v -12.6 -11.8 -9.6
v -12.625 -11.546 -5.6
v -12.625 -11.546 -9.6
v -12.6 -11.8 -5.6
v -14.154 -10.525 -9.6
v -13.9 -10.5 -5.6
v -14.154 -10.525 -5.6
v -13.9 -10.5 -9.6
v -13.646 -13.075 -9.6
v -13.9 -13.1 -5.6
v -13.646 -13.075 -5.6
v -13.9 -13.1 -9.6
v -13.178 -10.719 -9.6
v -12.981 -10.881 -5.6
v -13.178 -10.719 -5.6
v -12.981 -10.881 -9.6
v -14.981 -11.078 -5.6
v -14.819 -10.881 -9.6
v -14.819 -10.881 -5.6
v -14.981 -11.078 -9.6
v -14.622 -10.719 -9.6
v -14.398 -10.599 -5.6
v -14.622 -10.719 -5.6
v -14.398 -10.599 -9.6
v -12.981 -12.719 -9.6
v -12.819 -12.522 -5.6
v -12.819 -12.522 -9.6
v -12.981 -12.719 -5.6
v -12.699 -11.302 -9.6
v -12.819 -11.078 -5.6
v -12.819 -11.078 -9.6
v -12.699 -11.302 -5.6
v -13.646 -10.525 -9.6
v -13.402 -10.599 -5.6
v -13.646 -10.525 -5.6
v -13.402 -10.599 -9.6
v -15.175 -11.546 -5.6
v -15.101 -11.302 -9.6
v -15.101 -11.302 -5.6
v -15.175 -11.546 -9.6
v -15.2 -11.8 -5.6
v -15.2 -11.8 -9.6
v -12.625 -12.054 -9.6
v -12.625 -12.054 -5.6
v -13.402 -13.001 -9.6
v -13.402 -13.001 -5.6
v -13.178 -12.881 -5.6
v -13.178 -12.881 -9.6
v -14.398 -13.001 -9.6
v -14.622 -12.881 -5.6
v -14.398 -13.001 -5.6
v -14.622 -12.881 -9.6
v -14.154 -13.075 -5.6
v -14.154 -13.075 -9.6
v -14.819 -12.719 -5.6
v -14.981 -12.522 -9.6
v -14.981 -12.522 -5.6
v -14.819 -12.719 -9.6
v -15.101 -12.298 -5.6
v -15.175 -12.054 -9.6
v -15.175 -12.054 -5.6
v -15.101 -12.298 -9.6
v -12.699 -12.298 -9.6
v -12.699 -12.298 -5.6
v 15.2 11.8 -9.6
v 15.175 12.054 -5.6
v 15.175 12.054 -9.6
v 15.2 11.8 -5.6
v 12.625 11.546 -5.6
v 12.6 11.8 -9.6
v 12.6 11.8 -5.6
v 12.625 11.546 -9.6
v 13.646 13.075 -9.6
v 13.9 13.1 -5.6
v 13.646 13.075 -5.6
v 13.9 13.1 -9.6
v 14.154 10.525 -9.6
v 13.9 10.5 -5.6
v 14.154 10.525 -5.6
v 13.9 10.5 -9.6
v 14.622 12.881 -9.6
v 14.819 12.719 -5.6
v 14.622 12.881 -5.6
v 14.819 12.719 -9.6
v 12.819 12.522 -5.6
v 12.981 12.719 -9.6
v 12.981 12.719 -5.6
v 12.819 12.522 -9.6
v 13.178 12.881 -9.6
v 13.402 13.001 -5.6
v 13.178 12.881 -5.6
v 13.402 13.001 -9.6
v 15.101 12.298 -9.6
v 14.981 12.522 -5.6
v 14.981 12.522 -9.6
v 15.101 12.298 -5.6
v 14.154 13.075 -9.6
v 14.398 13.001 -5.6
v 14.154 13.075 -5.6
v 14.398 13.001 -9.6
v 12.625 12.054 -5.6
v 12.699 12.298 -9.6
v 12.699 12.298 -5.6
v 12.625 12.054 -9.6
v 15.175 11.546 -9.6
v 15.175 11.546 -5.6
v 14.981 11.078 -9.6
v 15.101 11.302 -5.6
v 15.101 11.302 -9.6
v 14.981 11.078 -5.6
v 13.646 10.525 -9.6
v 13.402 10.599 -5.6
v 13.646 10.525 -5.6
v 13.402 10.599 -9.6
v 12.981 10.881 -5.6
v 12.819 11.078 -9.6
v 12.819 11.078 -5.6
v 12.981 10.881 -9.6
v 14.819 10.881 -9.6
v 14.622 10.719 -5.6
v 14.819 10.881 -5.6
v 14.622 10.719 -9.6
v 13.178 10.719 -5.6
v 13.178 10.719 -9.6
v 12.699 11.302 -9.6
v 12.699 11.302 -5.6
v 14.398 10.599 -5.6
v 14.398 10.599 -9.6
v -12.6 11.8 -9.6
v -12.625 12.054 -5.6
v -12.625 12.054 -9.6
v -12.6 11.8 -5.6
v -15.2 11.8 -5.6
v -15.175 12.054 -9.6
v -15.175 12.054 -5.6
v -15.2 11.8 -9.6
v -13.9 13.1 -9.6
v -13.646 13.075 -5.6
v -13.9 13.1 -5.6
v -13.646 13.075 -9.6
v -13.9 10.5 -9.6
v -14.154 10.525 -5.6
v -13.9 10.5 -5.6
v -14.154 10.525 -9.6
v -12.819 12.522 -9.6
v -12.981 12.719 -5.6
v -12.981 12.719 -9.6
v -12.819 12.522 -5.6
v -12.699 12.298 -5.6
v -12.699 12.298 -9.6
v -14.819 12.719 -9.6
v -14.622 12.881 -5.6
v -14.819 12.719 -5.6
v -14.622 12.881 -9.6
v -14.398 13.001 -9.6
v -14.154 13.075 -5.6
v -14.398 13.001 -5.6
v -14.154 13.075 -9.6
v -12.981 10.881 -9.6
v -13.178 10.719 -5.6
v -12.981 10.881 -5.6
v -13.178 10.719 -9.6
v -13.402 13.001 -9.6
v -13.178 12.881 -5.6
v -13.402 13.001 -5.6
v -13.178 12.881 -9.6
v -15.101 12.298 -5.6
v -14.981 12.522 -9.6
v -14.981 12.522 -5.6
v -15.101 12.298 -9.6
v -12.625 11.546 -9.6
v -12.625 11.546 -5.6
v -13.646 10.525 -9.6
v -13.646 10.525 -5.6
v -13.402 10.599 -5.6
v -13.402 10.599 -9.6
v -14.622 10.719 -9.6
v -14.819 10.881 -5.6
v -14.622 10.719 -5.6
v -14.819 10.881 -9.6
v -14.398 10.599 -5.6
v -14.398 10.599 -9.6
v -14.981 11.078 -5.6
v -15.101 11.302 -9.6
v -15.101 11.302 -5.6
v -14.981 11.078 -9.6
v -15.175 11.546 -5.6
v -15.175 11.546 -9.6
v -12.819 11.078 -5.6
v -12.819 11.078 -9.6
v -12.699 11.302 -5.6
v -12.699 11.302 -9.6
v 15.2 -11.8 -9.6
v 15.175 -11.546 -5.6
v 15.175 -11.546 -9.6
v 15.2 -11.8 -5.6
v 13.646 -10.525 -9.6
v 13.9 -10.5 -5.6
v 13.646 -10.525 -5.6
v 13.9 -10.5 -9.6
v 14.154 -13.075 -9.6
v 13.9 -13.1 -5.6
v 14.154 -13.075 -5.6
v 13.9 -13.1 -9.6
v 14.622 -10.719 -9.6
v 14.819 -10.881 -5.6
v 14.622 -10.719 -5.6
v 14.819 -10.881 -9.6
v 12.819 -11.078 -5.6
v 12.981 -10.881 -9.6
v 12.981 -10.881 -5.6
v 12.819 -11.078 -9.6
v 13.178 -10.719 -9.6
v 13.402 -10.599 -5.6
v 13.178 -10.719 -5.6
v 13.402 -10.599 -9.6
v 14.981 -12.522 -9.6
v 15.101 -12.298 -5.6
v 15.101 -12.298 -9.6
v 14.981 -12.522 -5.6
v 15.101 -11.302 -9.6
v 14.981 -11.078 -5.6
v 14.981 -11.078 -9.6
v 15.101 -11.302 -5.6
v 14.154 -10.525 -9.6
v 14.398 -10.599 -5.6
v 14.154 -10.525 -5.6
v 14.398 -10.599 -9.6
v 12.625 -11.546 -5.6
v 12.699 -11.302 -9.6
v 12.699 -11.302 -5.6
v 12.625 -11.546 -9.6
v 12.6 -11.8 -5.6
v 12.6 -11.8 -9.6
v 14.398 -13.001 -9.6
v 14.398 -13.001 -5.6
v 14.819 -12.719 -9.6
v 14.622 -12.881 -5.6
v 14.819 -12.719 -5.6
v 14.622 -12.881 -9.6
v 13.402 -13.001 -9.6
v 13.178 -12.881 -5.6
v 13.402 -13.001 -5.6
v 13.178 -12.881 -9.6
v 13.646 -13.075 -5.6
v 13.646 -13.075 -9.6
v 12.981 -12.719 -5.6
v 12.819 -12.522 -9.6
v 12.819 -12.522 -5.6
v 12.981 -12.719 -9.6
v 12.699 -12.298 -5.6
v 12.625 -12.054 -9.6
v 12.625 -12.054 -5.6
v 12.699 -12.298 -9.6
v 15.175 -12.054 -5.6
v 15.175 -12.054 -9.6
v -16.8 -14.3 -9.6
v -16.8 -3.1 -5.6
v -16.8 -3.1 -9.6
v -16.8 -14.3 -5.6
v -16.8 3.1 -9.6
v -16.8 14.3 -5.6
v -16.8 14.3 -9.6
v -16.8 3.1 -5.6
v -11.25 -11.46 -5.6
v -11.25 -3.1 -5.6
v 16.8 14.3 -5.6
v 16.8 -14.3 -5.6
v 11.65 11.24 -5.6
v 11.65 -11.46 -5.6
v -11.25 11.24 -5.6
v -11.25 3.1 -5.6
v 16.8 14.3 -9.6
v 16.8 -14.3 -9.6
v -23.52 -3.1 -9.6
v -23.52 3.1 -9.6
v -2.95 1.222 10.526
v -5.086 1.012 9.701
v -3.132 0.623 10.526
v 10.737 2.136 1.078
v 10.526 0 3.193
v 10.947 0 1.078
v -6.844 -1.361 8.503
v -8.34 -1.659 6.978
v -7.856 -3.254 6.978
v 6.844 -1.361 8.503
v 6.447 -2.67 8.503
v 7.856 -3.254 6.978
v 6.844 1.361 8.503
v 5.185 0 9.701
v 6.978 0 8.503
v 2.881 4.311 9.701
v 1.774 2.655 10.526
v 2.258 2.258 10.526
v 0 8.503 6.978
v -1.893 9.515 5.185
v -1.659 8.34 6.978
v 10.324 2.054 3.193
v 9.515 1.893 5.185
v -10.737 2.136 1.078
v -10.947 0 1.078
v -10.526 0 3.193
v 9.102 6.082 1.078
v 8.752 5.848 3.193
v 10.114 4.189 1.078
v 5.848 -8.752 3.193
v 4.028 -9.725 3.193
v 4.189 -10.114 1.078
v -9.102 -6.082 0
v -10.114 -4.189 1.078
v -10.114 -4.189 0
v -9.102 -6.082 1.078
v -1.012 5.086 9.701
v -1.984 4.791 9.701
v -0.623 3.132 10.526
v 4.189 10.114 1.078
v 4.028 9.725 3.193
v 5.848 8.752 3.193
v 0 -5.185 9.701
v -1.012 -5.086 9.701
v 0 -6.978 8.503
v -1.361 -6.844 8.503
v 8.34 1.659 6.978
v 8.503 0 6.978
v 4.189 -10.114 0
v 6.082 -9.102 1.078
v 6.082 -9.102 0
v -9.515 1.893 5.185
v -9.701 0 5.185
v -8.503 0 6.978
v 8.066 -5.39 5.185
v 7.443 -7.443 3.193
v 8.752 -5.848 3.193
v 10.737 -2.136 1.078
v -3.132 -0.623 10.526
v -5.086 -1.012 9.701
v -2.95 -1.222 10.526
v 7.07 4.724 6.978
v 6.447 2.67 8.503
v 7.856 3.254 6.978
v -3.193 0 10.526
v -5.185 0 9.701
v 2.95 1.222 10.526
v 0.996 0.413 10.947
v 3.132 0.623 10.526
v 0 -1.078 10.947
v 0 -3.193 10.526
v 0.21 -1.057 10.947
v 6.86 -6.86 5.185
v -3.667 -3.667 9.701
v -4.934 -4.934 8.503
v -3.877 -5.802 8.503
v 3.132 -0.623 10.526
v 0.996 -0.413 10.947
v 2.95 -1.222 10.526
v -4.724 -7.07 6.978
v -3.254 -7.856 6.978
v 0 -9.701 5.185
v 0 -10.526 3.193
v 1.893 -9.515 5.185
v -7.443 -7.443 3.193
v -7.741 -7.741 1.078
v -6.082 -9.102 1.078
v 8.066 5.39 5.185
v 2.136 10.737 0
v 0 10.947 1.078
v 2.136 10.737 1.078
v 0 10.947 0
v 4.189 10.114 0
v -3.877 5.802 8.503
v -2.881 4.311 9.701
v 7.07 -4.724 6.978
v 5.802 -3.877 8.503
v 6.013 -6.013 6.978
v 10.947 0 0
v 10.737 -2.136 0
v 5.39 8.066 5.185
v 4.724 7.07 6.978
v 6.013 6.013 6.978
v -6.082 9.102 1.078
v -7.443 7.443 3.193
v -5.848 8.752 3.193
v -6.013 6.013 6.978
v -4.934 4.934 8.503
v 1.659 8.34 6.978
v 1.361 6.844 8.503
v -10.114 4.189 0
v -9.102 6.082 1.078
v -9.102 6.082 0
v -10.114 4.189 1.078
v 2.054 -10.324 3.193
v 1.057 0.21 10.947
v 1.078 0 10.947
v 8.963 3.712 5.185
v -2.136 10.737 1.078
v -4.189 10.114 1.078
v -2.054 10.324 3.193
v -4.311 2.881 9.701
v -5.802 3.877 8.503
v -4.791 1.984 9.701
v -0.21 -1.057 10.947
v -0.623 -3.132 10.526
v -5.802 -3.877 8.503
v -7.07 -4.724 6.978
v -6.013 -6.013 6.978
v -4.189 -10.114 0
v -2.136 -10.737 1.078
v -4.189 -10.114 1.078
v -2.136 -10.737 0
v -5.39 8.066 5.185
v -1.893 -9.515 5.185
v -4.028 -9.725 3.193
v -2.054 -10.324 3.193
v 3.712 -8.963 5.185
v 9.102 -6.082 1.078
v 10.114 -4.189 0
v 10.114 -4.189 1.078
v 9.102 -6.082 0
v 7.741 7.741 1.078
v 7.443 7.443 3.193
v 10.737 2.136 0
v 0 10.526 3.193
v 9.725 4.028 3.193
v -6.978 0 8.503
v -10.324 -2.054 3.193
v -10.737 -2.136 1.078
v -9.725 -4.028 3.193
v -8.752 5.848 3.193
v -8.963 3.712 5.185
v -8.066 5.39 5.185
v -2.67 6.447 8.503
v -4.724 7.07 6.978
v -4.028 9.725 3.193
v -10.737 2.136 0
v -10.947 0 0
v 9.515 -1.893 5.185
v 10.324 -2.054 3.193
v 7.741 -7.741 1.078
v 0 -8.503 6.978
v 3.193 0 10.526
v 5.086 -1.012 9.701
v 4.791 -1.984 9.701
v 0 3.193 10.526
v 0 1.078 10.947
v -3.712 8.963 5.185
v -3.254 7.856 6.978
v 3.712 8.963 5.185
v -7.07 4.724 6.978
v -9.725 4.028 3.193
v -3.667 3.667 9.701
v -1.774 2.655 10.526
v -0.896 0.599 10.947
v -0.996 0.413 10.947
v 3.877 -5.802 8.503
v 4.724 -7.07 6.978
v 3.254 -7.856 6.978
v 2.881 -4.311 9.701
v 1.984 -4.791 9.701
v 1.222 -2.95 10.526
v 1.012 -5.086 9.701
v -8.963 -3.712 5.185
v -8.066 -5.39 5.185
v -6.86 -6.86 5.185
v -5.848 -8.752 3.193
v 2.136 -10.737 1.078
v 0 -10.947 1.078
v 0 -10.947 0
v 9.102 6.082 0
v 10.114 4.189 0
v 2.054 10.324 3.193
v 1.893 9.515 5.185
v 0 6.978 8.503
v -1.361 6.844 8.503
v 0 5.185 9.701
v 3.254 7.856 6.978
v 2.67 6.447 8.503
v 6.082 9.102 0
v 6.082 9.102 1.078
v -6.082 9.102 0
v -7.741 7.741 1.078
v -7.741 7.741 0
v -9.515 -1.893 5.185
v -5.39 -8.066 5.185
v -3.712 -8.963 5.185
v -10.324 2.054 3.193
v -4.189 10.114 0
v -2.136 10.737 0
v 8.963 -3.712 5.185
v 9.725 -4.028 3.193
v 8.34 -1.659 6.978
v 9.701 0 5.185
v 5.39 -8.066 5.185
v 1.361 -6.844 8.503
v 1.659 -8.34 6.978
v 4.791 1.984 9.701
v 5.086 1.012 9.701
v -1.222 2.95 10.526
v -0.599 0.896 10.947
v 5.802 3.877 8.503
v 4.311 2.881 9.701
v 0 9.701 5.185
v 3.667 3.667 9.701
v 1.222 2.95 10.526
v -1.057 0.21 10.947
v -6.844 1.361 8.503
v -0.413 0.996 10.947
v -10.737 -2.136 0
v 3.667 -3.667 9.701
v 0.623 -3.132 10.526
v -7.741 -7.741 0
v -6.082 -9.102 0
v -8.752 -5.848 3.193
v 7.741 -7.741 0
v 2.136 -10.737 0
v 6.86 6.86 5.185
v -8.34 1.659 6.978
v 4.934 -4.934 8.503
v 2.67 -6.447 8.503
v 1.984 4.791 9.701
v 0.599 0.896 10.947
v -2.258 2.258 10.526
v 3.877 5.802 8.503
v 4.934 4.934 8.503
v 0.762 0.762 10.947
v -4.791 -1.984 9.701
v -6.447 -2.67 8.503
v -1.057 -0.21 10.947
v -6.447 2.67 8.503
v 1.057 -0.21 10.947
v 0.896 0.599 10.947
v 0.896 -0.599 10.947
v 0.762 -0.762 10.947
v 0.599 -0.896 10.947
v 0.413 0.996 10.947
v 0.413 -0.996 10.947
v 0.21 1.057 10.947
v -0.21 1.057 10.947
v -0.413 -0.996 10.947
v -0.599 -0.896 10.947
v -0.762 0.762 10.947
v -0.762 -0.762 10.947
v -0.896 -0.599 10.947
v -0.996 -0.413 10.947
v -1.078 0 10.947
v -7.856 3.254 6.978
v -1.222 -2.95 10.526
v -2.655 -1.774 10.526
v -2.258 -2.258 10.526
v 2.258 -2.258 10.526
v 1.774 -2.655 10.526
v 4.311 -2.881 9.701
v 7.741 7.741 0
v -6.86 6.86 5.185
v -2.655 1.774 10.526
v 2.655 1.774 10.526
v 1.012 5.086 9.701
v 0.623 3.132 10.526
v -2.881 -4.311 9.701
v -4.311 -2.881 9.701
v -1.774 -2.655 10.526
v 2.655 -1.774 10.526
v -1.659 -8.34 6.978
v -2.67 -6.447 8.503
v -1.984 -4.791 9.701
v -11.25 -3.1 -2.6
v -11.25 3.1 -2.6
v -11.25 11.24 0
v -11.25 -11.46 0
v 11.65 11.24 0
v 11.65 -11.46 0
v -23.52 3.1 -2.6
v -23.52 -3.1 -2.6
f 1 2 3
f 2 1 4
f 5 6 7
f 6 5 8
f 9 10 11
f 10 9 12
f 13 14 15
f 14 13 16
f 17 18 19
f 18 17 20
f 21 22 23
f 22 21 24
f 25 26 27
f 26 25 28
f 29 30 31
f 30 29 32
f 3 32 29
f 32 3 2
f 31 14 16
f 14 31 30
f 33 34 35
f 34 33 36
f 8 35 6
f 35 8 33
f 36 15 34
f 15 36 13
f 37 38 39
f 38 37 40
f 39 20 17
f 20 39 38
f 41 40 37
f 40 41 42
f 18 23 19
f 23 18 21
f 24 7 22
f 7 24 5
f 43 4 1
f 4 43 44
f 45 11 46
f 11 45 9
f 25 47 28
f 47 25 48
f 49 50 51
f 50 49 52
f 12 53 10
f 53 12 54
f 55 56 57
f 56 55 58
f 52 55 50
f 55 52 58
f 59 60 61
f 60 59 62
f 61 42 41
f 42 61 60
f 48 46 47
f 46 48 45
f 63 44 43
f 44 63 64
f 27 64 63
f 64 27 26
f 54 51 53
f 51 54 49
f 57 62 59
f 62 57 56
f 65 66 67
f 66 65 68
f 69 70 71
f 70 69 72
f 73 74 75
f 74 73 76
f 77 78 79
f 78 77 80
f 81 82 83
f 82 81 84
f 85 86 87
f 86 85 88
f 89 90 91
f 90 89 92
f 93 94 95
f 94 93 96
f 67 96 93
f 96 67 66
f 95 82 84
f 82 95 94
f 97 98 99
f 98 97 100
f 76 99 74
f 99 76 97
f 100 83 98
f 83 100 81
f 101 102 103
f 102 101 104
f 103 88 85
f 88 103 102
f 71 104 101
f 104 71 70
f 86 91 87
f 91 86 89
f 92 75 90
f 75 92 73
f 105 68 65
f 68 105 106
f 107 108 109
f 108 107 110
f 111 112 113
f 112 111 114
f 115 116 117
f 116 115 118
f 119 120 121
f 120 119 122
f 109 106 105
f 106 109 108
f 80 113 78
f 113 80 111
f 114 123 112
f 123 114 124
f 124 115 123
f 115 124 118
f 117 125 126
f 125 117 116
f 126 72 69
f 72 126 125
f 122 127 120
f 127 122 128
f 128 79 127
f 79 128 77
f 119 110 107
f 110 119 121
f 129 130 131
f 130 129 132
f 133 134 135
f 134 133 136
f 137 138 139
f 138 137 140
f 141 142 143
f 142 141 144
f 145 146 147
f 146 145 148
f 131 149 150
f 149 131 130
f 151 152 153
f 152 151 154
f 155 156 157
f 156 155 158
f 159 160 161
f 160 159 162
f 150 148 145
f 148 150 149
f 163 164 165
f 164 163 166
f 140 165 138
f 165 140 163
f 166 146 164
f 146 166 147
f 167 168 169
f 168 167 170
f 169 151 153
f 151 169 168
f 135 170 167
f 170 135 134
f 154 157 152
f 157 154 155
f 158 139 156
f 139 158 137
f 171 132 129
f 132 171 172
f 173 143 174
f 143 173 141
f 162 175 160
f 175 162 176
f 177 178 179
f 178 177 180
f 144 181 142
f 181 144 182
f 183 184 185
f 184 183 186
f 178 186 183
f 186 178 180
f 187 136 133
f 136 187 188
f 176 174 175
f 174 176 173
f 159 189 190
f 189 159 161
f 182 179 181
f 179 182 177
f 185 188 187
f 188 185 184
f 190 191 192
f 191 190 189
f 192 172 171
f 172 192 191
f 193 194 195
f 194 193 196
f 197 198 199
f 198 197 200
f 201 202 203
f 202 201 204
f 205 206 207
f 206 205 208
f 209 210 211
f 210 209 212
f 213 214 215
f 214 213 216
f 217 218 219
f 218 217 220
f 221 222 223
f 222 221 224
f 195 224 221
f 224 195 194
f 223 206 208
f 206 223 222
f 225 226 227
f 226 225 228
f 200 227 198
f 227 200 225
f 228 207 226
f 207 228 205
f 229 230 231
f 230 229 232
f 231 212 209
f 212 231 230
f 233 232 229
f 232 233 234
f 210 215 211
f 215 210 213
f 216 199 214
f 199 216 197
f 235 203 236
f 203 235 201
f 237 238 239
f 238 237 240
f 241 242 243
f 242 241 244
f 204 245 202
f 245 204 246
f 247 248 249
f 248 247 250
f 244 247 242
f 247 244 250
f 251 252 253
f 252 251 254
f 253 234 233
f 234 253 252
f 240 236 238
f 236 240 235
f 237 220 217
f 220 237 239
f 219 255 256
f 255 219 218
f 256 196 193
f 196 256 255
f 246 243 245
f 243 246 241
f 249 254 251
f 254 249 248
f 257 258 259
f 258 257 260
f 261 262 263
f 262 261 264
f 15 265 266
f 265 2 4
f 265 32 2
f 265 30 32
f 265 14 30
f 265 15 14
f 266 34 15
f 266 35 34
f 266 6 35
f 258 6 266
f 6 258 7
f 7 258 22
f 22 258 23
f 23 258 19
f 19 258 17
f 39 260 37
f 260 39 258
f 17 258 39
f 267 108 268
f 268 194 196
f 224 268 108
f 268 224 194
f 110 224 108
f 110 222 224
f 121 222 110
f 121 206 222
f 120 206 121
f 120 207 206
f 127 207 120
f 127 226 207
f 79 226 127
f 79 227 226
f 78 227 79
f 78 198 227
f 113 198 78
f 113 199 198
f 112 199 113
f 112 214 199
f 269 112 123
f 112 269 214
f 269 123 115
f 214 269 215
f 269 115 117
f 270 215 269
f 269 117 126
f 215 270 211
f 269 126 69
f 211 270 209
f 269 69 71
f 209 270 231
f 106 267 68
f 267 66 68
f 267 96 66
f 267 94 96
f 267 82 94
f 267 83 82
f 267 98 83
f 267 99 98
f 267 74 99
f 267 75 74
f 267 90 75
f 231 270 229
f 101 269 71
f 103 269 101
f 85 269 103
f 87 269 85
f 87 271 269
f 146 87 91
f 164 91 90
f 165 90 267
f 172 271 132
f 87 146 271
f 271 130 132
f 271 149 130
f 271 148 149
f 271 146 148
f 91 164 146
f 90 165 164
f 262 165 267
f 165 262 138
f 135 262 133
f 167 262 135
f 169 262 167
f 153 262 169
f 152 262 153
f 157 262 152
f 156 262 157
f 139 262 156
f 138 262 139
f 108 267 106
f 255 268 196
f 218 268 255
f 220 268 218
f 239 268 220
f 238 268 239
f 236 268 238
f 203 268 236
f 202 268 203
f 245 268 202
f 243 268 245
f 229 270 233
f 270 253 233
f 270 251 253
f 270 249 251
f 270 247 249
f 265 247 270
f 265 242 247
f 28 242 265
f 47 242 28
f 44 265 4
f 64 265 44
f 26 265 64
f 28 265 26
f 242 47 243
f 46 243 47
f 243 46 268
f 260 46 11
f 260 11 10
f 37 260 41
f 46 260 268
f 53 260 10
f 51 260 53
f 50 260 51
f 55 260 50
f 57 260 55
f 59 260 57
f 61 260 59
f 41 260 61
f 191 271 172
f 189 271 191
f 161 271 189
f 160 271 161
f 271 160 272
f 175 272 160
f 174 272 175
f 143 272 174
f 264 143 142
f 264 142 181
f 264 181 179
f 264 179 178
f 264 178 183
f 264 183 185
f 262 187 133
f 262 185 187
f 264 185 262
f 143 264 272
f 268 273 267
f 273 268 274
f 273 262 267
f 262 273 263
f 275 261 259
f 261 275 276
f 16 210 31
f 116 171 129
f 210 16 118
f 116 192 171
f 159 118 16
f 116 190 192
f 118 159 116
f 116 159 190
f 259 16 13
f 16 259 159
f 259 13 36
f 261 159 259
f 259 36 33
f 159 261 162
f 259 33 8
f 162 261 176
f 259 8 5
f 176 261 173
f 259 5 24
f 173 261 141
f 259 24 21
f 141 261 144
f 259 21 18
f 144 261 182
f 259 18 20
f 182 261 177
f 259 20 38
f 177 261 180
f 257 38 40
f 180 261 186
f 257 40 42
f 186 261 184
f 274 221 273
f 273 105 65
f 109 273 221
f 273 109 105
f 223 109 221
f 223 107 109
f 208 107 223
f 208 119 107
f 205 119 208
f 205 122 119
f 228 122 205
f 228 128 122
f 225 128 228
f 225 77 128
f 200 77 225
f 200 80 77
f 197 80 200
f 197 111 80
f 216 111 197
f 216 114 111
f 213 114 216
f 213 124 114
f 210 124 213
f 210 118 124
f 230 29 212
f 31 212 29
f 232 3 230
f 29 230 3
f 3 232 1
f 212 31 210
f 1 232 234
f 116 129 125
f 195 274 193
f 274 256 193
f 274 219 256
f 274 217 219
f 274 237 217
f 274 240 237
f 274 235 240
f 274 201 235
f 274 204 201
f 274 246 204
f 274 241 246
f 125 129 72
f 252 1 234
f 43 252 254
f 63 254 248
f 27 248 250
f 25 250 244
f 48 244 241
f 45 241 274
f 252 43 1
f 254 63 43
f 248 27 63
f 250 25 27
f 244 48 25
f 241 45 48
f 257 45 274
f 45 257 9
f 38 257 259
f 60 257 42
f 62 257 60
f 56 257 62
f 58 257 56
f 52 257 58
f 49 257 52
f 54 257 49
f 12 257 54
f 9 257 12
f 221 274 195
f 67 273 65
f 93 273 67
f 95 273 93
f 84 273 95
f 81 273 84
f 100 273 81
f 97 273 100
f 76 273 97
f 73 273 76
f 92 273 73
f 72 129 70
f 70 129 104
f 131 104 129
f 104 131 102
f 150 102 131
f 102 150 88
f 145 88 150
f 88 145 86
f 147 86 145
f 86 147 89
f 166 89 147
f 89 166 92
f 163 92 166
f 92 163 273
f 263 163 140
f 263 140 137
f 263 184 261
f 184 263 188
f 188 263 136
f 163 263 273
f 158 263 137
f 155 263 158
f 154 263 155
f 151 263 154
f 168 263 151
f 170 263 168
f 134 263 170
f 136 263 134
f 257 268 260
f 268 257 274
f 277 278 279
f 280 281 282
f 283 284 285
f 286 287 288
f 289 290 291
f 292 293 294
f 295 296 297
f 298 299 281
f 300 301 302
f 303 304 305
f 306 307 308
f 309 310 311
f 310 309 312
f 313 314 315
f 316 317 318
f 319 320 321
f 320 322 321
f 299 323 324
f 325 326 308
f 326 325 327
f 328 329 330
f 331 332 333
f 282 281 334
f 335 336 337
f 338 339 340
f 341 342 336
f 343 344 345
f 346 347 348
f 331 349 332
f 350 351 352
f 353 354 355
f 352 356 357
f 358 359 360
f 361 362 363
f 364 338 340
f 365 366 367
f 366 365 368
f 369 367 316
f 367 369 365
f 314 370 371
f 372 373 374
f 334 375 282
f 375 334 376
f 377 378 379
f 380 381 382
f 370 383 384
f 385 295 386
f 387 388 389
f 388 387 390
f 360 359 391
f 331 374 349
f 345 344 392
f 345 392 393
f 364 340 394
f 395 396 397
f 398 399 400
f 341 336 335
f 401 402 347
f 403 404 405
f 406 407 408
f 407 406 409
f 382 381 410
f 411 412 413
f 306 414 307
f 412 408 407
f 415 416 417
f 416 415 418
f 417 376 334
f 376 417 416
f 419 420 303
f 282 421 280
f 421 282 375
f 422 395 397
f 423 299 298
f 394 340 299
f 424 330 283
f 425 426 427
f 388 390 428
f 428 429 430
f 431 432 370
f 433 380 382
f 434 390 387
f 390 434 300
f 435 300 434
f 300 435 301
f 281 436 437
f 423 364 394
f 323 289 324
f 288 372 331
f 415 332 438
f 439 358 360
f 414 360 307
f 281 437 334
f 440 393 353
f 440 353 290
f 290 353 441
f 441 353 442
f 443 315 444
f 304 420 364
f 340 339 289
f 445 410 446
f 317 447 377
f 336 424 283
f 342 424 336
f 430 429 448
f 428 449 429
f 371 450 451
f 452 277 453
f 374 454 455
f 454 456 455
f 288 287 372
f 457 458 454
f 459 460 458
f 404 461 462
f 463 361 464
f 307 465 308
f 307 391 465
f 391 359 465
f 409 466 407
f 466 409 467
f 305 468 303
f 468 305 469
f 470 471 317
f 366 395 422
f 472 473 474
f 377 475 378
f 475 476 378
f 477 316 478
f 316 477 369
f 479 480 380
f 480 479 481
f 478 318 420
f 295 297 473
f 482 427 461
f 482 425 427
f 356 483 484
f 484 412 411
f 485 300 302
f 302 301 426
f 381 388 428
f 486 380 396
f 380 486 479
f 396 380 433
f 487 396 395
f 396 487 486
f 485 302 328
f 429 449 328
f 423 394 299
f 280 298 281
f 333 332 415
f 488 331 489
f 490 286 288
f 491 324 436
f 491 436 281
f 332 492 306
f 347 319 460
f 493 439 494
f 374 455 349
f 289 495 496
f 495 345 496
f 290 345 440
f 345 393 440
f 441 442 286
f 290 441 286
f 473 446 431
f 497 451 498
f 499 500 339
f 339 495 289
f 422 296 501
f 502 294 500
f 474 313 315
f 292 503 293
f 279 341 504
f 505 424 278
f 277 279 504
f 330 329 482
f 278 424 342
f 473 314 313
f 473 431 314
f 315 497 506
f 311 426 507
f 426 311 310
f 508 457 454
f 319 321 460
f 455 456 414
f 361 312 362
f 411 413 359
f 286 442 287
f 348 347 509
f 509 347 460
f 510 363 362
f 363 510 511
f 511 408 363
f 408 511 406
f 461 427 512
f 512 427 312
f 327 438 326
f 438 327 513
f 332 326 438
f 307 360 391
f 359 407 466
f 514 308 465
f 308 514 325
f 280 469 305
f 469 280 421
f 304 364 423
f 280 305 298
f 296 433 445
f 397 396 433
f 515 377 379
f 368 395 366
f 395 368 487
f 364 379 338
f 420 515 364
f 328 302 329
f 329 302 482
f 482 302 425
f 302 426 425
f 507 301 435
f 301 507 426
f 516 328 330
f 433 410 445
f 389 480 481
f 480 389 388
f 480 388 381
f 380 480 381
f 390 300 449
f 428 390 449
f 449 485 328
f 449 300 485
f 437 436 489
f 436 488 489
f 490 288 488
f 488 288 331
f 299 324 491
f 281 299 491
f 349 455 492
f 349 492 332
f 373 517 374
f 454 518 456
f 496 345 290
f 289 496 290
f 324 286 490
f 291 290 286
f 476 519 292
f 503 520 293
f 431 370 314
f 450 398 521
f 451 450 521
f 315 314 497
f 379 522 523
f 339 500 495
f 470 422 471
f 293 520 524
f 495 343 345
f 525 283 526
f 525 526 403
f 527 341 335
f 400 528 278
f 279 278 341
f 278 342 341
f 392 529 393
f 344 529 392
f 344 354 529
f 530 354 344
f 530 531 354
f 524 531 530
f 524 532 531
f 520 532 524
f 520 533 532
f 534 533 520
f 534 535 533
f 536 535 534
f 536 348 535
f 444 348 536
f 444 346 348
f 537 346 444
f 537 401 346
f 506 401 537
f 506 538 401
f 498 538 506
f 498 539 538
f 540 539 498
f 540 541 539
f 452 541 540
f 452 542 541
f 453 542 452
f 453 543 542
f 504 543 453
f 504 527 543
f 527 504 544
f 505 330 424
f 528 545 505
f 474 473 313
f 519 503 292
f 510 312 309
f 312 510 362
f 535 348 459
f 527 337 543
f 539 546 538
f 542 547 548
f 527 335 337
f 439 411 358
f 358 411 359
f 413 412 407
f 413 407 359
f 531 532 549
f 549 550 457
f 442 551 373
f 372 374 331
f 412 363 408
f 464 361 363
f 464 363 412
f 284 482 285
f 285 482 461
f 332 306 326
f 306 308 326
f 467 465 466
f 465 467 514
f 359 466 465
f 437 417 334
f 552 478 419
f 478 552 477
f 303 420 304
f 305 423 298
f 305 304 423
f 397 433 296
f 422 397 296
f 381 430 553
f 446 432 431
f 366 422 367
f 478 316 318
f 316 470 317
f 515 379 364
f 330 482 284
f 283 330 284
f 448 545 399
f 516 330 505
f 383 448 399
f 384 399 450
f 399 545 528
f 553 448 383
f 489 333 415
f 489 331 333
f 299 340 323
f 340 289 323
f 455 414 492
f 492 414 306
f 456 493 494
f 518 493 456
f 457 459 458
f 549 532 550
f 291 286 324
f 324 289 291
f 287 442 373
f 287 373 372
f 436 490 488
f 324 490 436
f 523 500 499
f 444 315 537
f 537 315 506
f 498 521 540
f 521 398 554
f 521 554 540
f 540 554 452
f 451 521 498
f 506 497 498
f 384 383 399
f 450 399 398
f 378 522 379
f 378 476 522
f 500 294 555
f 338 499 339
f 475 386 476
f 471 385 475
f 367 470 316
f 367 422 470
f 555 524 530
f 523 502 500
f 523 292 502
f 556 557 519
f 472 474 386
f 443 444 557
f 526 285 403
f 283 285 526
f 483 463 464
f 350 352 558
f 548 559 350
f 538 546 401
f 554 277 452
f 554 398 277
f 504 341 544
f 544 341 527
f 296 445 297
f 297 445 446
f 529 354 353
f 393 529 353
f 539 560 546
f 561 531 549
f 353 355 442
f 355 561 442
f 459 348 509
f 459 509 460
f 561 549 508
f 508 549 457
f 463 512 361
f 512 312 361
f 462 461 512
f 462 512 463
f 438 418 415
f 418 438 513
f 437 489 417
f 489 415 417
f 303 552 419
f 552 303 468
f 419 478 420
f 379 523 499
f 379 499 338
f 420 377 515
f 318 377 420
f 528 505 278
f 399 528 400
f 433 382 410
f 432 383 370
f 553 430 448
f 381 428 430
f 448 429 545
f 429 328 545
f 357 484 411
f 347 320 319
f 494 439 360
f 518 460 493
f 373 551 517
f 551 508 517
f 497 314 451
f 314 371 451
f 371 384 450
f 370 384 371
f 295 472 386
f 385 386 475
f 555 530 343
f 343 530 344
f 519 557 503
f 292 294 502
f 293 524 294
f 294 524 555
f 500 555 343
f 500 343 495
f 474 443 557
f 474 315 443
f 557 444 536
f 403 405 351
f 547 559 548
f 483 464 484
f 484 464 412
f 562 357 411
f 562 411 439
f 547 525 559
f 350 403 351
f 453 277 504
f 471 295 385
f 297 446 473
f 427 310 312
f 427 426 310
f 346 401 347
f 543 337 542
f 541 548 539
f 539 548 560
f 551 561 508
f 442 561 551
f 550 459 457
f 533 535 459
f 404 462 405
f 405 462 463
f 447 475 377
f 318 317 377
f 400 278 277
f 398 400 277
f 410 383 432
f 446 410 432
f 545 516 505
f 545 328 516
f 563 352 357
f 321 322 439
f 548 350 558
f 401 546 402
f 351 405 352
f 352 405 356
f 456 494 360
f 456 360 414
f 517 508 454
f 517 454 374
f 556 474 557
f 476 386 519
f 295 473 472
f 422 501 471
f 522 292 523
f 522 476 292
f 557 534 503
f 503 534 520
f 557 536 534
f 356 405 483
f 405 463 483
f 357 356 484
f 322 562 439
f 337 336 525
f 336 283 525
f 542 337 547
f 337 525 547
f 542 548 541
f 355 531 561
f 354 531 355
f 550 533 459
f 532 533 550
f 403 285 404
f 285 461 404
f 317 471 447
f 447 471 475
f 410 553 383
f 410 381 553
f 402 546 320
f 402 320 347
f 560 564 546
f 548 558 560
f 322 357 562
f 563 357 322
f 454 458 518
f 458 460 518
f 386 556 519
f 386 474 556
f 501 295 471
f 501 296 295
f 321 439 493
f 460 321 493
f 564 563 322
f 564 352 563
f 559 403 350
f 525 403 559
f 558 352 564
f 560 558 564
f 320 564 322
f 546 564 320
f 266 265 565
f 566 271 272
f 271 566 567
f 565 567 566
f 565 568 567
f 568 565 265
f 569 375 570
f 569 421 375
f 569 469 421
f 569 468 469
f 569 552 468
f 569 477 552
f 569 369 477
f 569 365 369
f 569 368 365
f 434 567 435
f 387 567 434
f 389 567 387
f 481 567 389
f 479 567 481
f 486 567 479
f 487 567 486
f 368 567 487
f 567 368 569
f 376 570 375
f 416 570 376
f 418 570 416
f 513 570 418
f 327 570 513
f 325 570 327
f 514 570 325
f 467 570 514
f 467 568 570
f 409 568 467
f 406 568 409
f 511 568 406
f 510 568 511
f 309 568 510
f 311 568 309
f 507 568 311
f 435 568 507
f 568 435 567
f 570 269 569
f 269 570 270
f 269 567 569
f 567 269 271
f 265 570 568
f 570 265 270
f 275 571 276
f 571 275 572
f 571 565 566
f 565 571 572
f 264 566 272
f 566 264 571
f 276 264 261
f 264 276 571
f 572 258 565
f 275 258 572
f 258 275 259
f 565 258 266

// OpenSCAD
// A PIR motion sensor ordered from https://www.sparkfun.com/products/13285
// Part of Vör, http://vor.space by Futurice
// ©Futurice Oy, paul.houghton@futurice.com, CC-attribution-sharealike license, http://creativecommons.org/licenses/by-sa/4.0/

$fn = 32;

length = 33.6;
width = 28.6;
height = 4;

base_length = 22.9;
base_width = 22.7;
base_height = 5.6;

dome_radius = 22/2;

pir_motion_sensor();

module board() {
    cube([length, width, height]);
}

module dome() {
    translate([5.55, 2.84, height])
        cube([base_length, base_width, base_height]);
    difference() {
        translate([length/2, width/2, height + 5.6]) sphere(r=dome_radius);
        translate([0, 0, -10]) cube([length, width, 10]);
    }
}

module wire() {
    translate([-length/5, (width - 6.2)/2, 0])
        cube([length/2, 6.2, height + 3]);
}

module hole(x = 0, y = 0) {
    translate([x, y, -10 + height]) cylinder(h = 10 + height, r = 2.6/2);
}

module pir_motion_sensor() {
    translate([-length/2, -width/2, -base_height - height]) union() {
        color("green") difference() {
            board();
            union() {
                hole(x = 2.9, y = 2.5);
                hole(x = length - 2.9, y = width - 2.5);
                hole(x = 2.9, y = width - 2.5);
                hole(x = length - 2.9, y = 2.5);
            }
        }
        color("grey") dome();
        color("black") wire();
    }    
}
